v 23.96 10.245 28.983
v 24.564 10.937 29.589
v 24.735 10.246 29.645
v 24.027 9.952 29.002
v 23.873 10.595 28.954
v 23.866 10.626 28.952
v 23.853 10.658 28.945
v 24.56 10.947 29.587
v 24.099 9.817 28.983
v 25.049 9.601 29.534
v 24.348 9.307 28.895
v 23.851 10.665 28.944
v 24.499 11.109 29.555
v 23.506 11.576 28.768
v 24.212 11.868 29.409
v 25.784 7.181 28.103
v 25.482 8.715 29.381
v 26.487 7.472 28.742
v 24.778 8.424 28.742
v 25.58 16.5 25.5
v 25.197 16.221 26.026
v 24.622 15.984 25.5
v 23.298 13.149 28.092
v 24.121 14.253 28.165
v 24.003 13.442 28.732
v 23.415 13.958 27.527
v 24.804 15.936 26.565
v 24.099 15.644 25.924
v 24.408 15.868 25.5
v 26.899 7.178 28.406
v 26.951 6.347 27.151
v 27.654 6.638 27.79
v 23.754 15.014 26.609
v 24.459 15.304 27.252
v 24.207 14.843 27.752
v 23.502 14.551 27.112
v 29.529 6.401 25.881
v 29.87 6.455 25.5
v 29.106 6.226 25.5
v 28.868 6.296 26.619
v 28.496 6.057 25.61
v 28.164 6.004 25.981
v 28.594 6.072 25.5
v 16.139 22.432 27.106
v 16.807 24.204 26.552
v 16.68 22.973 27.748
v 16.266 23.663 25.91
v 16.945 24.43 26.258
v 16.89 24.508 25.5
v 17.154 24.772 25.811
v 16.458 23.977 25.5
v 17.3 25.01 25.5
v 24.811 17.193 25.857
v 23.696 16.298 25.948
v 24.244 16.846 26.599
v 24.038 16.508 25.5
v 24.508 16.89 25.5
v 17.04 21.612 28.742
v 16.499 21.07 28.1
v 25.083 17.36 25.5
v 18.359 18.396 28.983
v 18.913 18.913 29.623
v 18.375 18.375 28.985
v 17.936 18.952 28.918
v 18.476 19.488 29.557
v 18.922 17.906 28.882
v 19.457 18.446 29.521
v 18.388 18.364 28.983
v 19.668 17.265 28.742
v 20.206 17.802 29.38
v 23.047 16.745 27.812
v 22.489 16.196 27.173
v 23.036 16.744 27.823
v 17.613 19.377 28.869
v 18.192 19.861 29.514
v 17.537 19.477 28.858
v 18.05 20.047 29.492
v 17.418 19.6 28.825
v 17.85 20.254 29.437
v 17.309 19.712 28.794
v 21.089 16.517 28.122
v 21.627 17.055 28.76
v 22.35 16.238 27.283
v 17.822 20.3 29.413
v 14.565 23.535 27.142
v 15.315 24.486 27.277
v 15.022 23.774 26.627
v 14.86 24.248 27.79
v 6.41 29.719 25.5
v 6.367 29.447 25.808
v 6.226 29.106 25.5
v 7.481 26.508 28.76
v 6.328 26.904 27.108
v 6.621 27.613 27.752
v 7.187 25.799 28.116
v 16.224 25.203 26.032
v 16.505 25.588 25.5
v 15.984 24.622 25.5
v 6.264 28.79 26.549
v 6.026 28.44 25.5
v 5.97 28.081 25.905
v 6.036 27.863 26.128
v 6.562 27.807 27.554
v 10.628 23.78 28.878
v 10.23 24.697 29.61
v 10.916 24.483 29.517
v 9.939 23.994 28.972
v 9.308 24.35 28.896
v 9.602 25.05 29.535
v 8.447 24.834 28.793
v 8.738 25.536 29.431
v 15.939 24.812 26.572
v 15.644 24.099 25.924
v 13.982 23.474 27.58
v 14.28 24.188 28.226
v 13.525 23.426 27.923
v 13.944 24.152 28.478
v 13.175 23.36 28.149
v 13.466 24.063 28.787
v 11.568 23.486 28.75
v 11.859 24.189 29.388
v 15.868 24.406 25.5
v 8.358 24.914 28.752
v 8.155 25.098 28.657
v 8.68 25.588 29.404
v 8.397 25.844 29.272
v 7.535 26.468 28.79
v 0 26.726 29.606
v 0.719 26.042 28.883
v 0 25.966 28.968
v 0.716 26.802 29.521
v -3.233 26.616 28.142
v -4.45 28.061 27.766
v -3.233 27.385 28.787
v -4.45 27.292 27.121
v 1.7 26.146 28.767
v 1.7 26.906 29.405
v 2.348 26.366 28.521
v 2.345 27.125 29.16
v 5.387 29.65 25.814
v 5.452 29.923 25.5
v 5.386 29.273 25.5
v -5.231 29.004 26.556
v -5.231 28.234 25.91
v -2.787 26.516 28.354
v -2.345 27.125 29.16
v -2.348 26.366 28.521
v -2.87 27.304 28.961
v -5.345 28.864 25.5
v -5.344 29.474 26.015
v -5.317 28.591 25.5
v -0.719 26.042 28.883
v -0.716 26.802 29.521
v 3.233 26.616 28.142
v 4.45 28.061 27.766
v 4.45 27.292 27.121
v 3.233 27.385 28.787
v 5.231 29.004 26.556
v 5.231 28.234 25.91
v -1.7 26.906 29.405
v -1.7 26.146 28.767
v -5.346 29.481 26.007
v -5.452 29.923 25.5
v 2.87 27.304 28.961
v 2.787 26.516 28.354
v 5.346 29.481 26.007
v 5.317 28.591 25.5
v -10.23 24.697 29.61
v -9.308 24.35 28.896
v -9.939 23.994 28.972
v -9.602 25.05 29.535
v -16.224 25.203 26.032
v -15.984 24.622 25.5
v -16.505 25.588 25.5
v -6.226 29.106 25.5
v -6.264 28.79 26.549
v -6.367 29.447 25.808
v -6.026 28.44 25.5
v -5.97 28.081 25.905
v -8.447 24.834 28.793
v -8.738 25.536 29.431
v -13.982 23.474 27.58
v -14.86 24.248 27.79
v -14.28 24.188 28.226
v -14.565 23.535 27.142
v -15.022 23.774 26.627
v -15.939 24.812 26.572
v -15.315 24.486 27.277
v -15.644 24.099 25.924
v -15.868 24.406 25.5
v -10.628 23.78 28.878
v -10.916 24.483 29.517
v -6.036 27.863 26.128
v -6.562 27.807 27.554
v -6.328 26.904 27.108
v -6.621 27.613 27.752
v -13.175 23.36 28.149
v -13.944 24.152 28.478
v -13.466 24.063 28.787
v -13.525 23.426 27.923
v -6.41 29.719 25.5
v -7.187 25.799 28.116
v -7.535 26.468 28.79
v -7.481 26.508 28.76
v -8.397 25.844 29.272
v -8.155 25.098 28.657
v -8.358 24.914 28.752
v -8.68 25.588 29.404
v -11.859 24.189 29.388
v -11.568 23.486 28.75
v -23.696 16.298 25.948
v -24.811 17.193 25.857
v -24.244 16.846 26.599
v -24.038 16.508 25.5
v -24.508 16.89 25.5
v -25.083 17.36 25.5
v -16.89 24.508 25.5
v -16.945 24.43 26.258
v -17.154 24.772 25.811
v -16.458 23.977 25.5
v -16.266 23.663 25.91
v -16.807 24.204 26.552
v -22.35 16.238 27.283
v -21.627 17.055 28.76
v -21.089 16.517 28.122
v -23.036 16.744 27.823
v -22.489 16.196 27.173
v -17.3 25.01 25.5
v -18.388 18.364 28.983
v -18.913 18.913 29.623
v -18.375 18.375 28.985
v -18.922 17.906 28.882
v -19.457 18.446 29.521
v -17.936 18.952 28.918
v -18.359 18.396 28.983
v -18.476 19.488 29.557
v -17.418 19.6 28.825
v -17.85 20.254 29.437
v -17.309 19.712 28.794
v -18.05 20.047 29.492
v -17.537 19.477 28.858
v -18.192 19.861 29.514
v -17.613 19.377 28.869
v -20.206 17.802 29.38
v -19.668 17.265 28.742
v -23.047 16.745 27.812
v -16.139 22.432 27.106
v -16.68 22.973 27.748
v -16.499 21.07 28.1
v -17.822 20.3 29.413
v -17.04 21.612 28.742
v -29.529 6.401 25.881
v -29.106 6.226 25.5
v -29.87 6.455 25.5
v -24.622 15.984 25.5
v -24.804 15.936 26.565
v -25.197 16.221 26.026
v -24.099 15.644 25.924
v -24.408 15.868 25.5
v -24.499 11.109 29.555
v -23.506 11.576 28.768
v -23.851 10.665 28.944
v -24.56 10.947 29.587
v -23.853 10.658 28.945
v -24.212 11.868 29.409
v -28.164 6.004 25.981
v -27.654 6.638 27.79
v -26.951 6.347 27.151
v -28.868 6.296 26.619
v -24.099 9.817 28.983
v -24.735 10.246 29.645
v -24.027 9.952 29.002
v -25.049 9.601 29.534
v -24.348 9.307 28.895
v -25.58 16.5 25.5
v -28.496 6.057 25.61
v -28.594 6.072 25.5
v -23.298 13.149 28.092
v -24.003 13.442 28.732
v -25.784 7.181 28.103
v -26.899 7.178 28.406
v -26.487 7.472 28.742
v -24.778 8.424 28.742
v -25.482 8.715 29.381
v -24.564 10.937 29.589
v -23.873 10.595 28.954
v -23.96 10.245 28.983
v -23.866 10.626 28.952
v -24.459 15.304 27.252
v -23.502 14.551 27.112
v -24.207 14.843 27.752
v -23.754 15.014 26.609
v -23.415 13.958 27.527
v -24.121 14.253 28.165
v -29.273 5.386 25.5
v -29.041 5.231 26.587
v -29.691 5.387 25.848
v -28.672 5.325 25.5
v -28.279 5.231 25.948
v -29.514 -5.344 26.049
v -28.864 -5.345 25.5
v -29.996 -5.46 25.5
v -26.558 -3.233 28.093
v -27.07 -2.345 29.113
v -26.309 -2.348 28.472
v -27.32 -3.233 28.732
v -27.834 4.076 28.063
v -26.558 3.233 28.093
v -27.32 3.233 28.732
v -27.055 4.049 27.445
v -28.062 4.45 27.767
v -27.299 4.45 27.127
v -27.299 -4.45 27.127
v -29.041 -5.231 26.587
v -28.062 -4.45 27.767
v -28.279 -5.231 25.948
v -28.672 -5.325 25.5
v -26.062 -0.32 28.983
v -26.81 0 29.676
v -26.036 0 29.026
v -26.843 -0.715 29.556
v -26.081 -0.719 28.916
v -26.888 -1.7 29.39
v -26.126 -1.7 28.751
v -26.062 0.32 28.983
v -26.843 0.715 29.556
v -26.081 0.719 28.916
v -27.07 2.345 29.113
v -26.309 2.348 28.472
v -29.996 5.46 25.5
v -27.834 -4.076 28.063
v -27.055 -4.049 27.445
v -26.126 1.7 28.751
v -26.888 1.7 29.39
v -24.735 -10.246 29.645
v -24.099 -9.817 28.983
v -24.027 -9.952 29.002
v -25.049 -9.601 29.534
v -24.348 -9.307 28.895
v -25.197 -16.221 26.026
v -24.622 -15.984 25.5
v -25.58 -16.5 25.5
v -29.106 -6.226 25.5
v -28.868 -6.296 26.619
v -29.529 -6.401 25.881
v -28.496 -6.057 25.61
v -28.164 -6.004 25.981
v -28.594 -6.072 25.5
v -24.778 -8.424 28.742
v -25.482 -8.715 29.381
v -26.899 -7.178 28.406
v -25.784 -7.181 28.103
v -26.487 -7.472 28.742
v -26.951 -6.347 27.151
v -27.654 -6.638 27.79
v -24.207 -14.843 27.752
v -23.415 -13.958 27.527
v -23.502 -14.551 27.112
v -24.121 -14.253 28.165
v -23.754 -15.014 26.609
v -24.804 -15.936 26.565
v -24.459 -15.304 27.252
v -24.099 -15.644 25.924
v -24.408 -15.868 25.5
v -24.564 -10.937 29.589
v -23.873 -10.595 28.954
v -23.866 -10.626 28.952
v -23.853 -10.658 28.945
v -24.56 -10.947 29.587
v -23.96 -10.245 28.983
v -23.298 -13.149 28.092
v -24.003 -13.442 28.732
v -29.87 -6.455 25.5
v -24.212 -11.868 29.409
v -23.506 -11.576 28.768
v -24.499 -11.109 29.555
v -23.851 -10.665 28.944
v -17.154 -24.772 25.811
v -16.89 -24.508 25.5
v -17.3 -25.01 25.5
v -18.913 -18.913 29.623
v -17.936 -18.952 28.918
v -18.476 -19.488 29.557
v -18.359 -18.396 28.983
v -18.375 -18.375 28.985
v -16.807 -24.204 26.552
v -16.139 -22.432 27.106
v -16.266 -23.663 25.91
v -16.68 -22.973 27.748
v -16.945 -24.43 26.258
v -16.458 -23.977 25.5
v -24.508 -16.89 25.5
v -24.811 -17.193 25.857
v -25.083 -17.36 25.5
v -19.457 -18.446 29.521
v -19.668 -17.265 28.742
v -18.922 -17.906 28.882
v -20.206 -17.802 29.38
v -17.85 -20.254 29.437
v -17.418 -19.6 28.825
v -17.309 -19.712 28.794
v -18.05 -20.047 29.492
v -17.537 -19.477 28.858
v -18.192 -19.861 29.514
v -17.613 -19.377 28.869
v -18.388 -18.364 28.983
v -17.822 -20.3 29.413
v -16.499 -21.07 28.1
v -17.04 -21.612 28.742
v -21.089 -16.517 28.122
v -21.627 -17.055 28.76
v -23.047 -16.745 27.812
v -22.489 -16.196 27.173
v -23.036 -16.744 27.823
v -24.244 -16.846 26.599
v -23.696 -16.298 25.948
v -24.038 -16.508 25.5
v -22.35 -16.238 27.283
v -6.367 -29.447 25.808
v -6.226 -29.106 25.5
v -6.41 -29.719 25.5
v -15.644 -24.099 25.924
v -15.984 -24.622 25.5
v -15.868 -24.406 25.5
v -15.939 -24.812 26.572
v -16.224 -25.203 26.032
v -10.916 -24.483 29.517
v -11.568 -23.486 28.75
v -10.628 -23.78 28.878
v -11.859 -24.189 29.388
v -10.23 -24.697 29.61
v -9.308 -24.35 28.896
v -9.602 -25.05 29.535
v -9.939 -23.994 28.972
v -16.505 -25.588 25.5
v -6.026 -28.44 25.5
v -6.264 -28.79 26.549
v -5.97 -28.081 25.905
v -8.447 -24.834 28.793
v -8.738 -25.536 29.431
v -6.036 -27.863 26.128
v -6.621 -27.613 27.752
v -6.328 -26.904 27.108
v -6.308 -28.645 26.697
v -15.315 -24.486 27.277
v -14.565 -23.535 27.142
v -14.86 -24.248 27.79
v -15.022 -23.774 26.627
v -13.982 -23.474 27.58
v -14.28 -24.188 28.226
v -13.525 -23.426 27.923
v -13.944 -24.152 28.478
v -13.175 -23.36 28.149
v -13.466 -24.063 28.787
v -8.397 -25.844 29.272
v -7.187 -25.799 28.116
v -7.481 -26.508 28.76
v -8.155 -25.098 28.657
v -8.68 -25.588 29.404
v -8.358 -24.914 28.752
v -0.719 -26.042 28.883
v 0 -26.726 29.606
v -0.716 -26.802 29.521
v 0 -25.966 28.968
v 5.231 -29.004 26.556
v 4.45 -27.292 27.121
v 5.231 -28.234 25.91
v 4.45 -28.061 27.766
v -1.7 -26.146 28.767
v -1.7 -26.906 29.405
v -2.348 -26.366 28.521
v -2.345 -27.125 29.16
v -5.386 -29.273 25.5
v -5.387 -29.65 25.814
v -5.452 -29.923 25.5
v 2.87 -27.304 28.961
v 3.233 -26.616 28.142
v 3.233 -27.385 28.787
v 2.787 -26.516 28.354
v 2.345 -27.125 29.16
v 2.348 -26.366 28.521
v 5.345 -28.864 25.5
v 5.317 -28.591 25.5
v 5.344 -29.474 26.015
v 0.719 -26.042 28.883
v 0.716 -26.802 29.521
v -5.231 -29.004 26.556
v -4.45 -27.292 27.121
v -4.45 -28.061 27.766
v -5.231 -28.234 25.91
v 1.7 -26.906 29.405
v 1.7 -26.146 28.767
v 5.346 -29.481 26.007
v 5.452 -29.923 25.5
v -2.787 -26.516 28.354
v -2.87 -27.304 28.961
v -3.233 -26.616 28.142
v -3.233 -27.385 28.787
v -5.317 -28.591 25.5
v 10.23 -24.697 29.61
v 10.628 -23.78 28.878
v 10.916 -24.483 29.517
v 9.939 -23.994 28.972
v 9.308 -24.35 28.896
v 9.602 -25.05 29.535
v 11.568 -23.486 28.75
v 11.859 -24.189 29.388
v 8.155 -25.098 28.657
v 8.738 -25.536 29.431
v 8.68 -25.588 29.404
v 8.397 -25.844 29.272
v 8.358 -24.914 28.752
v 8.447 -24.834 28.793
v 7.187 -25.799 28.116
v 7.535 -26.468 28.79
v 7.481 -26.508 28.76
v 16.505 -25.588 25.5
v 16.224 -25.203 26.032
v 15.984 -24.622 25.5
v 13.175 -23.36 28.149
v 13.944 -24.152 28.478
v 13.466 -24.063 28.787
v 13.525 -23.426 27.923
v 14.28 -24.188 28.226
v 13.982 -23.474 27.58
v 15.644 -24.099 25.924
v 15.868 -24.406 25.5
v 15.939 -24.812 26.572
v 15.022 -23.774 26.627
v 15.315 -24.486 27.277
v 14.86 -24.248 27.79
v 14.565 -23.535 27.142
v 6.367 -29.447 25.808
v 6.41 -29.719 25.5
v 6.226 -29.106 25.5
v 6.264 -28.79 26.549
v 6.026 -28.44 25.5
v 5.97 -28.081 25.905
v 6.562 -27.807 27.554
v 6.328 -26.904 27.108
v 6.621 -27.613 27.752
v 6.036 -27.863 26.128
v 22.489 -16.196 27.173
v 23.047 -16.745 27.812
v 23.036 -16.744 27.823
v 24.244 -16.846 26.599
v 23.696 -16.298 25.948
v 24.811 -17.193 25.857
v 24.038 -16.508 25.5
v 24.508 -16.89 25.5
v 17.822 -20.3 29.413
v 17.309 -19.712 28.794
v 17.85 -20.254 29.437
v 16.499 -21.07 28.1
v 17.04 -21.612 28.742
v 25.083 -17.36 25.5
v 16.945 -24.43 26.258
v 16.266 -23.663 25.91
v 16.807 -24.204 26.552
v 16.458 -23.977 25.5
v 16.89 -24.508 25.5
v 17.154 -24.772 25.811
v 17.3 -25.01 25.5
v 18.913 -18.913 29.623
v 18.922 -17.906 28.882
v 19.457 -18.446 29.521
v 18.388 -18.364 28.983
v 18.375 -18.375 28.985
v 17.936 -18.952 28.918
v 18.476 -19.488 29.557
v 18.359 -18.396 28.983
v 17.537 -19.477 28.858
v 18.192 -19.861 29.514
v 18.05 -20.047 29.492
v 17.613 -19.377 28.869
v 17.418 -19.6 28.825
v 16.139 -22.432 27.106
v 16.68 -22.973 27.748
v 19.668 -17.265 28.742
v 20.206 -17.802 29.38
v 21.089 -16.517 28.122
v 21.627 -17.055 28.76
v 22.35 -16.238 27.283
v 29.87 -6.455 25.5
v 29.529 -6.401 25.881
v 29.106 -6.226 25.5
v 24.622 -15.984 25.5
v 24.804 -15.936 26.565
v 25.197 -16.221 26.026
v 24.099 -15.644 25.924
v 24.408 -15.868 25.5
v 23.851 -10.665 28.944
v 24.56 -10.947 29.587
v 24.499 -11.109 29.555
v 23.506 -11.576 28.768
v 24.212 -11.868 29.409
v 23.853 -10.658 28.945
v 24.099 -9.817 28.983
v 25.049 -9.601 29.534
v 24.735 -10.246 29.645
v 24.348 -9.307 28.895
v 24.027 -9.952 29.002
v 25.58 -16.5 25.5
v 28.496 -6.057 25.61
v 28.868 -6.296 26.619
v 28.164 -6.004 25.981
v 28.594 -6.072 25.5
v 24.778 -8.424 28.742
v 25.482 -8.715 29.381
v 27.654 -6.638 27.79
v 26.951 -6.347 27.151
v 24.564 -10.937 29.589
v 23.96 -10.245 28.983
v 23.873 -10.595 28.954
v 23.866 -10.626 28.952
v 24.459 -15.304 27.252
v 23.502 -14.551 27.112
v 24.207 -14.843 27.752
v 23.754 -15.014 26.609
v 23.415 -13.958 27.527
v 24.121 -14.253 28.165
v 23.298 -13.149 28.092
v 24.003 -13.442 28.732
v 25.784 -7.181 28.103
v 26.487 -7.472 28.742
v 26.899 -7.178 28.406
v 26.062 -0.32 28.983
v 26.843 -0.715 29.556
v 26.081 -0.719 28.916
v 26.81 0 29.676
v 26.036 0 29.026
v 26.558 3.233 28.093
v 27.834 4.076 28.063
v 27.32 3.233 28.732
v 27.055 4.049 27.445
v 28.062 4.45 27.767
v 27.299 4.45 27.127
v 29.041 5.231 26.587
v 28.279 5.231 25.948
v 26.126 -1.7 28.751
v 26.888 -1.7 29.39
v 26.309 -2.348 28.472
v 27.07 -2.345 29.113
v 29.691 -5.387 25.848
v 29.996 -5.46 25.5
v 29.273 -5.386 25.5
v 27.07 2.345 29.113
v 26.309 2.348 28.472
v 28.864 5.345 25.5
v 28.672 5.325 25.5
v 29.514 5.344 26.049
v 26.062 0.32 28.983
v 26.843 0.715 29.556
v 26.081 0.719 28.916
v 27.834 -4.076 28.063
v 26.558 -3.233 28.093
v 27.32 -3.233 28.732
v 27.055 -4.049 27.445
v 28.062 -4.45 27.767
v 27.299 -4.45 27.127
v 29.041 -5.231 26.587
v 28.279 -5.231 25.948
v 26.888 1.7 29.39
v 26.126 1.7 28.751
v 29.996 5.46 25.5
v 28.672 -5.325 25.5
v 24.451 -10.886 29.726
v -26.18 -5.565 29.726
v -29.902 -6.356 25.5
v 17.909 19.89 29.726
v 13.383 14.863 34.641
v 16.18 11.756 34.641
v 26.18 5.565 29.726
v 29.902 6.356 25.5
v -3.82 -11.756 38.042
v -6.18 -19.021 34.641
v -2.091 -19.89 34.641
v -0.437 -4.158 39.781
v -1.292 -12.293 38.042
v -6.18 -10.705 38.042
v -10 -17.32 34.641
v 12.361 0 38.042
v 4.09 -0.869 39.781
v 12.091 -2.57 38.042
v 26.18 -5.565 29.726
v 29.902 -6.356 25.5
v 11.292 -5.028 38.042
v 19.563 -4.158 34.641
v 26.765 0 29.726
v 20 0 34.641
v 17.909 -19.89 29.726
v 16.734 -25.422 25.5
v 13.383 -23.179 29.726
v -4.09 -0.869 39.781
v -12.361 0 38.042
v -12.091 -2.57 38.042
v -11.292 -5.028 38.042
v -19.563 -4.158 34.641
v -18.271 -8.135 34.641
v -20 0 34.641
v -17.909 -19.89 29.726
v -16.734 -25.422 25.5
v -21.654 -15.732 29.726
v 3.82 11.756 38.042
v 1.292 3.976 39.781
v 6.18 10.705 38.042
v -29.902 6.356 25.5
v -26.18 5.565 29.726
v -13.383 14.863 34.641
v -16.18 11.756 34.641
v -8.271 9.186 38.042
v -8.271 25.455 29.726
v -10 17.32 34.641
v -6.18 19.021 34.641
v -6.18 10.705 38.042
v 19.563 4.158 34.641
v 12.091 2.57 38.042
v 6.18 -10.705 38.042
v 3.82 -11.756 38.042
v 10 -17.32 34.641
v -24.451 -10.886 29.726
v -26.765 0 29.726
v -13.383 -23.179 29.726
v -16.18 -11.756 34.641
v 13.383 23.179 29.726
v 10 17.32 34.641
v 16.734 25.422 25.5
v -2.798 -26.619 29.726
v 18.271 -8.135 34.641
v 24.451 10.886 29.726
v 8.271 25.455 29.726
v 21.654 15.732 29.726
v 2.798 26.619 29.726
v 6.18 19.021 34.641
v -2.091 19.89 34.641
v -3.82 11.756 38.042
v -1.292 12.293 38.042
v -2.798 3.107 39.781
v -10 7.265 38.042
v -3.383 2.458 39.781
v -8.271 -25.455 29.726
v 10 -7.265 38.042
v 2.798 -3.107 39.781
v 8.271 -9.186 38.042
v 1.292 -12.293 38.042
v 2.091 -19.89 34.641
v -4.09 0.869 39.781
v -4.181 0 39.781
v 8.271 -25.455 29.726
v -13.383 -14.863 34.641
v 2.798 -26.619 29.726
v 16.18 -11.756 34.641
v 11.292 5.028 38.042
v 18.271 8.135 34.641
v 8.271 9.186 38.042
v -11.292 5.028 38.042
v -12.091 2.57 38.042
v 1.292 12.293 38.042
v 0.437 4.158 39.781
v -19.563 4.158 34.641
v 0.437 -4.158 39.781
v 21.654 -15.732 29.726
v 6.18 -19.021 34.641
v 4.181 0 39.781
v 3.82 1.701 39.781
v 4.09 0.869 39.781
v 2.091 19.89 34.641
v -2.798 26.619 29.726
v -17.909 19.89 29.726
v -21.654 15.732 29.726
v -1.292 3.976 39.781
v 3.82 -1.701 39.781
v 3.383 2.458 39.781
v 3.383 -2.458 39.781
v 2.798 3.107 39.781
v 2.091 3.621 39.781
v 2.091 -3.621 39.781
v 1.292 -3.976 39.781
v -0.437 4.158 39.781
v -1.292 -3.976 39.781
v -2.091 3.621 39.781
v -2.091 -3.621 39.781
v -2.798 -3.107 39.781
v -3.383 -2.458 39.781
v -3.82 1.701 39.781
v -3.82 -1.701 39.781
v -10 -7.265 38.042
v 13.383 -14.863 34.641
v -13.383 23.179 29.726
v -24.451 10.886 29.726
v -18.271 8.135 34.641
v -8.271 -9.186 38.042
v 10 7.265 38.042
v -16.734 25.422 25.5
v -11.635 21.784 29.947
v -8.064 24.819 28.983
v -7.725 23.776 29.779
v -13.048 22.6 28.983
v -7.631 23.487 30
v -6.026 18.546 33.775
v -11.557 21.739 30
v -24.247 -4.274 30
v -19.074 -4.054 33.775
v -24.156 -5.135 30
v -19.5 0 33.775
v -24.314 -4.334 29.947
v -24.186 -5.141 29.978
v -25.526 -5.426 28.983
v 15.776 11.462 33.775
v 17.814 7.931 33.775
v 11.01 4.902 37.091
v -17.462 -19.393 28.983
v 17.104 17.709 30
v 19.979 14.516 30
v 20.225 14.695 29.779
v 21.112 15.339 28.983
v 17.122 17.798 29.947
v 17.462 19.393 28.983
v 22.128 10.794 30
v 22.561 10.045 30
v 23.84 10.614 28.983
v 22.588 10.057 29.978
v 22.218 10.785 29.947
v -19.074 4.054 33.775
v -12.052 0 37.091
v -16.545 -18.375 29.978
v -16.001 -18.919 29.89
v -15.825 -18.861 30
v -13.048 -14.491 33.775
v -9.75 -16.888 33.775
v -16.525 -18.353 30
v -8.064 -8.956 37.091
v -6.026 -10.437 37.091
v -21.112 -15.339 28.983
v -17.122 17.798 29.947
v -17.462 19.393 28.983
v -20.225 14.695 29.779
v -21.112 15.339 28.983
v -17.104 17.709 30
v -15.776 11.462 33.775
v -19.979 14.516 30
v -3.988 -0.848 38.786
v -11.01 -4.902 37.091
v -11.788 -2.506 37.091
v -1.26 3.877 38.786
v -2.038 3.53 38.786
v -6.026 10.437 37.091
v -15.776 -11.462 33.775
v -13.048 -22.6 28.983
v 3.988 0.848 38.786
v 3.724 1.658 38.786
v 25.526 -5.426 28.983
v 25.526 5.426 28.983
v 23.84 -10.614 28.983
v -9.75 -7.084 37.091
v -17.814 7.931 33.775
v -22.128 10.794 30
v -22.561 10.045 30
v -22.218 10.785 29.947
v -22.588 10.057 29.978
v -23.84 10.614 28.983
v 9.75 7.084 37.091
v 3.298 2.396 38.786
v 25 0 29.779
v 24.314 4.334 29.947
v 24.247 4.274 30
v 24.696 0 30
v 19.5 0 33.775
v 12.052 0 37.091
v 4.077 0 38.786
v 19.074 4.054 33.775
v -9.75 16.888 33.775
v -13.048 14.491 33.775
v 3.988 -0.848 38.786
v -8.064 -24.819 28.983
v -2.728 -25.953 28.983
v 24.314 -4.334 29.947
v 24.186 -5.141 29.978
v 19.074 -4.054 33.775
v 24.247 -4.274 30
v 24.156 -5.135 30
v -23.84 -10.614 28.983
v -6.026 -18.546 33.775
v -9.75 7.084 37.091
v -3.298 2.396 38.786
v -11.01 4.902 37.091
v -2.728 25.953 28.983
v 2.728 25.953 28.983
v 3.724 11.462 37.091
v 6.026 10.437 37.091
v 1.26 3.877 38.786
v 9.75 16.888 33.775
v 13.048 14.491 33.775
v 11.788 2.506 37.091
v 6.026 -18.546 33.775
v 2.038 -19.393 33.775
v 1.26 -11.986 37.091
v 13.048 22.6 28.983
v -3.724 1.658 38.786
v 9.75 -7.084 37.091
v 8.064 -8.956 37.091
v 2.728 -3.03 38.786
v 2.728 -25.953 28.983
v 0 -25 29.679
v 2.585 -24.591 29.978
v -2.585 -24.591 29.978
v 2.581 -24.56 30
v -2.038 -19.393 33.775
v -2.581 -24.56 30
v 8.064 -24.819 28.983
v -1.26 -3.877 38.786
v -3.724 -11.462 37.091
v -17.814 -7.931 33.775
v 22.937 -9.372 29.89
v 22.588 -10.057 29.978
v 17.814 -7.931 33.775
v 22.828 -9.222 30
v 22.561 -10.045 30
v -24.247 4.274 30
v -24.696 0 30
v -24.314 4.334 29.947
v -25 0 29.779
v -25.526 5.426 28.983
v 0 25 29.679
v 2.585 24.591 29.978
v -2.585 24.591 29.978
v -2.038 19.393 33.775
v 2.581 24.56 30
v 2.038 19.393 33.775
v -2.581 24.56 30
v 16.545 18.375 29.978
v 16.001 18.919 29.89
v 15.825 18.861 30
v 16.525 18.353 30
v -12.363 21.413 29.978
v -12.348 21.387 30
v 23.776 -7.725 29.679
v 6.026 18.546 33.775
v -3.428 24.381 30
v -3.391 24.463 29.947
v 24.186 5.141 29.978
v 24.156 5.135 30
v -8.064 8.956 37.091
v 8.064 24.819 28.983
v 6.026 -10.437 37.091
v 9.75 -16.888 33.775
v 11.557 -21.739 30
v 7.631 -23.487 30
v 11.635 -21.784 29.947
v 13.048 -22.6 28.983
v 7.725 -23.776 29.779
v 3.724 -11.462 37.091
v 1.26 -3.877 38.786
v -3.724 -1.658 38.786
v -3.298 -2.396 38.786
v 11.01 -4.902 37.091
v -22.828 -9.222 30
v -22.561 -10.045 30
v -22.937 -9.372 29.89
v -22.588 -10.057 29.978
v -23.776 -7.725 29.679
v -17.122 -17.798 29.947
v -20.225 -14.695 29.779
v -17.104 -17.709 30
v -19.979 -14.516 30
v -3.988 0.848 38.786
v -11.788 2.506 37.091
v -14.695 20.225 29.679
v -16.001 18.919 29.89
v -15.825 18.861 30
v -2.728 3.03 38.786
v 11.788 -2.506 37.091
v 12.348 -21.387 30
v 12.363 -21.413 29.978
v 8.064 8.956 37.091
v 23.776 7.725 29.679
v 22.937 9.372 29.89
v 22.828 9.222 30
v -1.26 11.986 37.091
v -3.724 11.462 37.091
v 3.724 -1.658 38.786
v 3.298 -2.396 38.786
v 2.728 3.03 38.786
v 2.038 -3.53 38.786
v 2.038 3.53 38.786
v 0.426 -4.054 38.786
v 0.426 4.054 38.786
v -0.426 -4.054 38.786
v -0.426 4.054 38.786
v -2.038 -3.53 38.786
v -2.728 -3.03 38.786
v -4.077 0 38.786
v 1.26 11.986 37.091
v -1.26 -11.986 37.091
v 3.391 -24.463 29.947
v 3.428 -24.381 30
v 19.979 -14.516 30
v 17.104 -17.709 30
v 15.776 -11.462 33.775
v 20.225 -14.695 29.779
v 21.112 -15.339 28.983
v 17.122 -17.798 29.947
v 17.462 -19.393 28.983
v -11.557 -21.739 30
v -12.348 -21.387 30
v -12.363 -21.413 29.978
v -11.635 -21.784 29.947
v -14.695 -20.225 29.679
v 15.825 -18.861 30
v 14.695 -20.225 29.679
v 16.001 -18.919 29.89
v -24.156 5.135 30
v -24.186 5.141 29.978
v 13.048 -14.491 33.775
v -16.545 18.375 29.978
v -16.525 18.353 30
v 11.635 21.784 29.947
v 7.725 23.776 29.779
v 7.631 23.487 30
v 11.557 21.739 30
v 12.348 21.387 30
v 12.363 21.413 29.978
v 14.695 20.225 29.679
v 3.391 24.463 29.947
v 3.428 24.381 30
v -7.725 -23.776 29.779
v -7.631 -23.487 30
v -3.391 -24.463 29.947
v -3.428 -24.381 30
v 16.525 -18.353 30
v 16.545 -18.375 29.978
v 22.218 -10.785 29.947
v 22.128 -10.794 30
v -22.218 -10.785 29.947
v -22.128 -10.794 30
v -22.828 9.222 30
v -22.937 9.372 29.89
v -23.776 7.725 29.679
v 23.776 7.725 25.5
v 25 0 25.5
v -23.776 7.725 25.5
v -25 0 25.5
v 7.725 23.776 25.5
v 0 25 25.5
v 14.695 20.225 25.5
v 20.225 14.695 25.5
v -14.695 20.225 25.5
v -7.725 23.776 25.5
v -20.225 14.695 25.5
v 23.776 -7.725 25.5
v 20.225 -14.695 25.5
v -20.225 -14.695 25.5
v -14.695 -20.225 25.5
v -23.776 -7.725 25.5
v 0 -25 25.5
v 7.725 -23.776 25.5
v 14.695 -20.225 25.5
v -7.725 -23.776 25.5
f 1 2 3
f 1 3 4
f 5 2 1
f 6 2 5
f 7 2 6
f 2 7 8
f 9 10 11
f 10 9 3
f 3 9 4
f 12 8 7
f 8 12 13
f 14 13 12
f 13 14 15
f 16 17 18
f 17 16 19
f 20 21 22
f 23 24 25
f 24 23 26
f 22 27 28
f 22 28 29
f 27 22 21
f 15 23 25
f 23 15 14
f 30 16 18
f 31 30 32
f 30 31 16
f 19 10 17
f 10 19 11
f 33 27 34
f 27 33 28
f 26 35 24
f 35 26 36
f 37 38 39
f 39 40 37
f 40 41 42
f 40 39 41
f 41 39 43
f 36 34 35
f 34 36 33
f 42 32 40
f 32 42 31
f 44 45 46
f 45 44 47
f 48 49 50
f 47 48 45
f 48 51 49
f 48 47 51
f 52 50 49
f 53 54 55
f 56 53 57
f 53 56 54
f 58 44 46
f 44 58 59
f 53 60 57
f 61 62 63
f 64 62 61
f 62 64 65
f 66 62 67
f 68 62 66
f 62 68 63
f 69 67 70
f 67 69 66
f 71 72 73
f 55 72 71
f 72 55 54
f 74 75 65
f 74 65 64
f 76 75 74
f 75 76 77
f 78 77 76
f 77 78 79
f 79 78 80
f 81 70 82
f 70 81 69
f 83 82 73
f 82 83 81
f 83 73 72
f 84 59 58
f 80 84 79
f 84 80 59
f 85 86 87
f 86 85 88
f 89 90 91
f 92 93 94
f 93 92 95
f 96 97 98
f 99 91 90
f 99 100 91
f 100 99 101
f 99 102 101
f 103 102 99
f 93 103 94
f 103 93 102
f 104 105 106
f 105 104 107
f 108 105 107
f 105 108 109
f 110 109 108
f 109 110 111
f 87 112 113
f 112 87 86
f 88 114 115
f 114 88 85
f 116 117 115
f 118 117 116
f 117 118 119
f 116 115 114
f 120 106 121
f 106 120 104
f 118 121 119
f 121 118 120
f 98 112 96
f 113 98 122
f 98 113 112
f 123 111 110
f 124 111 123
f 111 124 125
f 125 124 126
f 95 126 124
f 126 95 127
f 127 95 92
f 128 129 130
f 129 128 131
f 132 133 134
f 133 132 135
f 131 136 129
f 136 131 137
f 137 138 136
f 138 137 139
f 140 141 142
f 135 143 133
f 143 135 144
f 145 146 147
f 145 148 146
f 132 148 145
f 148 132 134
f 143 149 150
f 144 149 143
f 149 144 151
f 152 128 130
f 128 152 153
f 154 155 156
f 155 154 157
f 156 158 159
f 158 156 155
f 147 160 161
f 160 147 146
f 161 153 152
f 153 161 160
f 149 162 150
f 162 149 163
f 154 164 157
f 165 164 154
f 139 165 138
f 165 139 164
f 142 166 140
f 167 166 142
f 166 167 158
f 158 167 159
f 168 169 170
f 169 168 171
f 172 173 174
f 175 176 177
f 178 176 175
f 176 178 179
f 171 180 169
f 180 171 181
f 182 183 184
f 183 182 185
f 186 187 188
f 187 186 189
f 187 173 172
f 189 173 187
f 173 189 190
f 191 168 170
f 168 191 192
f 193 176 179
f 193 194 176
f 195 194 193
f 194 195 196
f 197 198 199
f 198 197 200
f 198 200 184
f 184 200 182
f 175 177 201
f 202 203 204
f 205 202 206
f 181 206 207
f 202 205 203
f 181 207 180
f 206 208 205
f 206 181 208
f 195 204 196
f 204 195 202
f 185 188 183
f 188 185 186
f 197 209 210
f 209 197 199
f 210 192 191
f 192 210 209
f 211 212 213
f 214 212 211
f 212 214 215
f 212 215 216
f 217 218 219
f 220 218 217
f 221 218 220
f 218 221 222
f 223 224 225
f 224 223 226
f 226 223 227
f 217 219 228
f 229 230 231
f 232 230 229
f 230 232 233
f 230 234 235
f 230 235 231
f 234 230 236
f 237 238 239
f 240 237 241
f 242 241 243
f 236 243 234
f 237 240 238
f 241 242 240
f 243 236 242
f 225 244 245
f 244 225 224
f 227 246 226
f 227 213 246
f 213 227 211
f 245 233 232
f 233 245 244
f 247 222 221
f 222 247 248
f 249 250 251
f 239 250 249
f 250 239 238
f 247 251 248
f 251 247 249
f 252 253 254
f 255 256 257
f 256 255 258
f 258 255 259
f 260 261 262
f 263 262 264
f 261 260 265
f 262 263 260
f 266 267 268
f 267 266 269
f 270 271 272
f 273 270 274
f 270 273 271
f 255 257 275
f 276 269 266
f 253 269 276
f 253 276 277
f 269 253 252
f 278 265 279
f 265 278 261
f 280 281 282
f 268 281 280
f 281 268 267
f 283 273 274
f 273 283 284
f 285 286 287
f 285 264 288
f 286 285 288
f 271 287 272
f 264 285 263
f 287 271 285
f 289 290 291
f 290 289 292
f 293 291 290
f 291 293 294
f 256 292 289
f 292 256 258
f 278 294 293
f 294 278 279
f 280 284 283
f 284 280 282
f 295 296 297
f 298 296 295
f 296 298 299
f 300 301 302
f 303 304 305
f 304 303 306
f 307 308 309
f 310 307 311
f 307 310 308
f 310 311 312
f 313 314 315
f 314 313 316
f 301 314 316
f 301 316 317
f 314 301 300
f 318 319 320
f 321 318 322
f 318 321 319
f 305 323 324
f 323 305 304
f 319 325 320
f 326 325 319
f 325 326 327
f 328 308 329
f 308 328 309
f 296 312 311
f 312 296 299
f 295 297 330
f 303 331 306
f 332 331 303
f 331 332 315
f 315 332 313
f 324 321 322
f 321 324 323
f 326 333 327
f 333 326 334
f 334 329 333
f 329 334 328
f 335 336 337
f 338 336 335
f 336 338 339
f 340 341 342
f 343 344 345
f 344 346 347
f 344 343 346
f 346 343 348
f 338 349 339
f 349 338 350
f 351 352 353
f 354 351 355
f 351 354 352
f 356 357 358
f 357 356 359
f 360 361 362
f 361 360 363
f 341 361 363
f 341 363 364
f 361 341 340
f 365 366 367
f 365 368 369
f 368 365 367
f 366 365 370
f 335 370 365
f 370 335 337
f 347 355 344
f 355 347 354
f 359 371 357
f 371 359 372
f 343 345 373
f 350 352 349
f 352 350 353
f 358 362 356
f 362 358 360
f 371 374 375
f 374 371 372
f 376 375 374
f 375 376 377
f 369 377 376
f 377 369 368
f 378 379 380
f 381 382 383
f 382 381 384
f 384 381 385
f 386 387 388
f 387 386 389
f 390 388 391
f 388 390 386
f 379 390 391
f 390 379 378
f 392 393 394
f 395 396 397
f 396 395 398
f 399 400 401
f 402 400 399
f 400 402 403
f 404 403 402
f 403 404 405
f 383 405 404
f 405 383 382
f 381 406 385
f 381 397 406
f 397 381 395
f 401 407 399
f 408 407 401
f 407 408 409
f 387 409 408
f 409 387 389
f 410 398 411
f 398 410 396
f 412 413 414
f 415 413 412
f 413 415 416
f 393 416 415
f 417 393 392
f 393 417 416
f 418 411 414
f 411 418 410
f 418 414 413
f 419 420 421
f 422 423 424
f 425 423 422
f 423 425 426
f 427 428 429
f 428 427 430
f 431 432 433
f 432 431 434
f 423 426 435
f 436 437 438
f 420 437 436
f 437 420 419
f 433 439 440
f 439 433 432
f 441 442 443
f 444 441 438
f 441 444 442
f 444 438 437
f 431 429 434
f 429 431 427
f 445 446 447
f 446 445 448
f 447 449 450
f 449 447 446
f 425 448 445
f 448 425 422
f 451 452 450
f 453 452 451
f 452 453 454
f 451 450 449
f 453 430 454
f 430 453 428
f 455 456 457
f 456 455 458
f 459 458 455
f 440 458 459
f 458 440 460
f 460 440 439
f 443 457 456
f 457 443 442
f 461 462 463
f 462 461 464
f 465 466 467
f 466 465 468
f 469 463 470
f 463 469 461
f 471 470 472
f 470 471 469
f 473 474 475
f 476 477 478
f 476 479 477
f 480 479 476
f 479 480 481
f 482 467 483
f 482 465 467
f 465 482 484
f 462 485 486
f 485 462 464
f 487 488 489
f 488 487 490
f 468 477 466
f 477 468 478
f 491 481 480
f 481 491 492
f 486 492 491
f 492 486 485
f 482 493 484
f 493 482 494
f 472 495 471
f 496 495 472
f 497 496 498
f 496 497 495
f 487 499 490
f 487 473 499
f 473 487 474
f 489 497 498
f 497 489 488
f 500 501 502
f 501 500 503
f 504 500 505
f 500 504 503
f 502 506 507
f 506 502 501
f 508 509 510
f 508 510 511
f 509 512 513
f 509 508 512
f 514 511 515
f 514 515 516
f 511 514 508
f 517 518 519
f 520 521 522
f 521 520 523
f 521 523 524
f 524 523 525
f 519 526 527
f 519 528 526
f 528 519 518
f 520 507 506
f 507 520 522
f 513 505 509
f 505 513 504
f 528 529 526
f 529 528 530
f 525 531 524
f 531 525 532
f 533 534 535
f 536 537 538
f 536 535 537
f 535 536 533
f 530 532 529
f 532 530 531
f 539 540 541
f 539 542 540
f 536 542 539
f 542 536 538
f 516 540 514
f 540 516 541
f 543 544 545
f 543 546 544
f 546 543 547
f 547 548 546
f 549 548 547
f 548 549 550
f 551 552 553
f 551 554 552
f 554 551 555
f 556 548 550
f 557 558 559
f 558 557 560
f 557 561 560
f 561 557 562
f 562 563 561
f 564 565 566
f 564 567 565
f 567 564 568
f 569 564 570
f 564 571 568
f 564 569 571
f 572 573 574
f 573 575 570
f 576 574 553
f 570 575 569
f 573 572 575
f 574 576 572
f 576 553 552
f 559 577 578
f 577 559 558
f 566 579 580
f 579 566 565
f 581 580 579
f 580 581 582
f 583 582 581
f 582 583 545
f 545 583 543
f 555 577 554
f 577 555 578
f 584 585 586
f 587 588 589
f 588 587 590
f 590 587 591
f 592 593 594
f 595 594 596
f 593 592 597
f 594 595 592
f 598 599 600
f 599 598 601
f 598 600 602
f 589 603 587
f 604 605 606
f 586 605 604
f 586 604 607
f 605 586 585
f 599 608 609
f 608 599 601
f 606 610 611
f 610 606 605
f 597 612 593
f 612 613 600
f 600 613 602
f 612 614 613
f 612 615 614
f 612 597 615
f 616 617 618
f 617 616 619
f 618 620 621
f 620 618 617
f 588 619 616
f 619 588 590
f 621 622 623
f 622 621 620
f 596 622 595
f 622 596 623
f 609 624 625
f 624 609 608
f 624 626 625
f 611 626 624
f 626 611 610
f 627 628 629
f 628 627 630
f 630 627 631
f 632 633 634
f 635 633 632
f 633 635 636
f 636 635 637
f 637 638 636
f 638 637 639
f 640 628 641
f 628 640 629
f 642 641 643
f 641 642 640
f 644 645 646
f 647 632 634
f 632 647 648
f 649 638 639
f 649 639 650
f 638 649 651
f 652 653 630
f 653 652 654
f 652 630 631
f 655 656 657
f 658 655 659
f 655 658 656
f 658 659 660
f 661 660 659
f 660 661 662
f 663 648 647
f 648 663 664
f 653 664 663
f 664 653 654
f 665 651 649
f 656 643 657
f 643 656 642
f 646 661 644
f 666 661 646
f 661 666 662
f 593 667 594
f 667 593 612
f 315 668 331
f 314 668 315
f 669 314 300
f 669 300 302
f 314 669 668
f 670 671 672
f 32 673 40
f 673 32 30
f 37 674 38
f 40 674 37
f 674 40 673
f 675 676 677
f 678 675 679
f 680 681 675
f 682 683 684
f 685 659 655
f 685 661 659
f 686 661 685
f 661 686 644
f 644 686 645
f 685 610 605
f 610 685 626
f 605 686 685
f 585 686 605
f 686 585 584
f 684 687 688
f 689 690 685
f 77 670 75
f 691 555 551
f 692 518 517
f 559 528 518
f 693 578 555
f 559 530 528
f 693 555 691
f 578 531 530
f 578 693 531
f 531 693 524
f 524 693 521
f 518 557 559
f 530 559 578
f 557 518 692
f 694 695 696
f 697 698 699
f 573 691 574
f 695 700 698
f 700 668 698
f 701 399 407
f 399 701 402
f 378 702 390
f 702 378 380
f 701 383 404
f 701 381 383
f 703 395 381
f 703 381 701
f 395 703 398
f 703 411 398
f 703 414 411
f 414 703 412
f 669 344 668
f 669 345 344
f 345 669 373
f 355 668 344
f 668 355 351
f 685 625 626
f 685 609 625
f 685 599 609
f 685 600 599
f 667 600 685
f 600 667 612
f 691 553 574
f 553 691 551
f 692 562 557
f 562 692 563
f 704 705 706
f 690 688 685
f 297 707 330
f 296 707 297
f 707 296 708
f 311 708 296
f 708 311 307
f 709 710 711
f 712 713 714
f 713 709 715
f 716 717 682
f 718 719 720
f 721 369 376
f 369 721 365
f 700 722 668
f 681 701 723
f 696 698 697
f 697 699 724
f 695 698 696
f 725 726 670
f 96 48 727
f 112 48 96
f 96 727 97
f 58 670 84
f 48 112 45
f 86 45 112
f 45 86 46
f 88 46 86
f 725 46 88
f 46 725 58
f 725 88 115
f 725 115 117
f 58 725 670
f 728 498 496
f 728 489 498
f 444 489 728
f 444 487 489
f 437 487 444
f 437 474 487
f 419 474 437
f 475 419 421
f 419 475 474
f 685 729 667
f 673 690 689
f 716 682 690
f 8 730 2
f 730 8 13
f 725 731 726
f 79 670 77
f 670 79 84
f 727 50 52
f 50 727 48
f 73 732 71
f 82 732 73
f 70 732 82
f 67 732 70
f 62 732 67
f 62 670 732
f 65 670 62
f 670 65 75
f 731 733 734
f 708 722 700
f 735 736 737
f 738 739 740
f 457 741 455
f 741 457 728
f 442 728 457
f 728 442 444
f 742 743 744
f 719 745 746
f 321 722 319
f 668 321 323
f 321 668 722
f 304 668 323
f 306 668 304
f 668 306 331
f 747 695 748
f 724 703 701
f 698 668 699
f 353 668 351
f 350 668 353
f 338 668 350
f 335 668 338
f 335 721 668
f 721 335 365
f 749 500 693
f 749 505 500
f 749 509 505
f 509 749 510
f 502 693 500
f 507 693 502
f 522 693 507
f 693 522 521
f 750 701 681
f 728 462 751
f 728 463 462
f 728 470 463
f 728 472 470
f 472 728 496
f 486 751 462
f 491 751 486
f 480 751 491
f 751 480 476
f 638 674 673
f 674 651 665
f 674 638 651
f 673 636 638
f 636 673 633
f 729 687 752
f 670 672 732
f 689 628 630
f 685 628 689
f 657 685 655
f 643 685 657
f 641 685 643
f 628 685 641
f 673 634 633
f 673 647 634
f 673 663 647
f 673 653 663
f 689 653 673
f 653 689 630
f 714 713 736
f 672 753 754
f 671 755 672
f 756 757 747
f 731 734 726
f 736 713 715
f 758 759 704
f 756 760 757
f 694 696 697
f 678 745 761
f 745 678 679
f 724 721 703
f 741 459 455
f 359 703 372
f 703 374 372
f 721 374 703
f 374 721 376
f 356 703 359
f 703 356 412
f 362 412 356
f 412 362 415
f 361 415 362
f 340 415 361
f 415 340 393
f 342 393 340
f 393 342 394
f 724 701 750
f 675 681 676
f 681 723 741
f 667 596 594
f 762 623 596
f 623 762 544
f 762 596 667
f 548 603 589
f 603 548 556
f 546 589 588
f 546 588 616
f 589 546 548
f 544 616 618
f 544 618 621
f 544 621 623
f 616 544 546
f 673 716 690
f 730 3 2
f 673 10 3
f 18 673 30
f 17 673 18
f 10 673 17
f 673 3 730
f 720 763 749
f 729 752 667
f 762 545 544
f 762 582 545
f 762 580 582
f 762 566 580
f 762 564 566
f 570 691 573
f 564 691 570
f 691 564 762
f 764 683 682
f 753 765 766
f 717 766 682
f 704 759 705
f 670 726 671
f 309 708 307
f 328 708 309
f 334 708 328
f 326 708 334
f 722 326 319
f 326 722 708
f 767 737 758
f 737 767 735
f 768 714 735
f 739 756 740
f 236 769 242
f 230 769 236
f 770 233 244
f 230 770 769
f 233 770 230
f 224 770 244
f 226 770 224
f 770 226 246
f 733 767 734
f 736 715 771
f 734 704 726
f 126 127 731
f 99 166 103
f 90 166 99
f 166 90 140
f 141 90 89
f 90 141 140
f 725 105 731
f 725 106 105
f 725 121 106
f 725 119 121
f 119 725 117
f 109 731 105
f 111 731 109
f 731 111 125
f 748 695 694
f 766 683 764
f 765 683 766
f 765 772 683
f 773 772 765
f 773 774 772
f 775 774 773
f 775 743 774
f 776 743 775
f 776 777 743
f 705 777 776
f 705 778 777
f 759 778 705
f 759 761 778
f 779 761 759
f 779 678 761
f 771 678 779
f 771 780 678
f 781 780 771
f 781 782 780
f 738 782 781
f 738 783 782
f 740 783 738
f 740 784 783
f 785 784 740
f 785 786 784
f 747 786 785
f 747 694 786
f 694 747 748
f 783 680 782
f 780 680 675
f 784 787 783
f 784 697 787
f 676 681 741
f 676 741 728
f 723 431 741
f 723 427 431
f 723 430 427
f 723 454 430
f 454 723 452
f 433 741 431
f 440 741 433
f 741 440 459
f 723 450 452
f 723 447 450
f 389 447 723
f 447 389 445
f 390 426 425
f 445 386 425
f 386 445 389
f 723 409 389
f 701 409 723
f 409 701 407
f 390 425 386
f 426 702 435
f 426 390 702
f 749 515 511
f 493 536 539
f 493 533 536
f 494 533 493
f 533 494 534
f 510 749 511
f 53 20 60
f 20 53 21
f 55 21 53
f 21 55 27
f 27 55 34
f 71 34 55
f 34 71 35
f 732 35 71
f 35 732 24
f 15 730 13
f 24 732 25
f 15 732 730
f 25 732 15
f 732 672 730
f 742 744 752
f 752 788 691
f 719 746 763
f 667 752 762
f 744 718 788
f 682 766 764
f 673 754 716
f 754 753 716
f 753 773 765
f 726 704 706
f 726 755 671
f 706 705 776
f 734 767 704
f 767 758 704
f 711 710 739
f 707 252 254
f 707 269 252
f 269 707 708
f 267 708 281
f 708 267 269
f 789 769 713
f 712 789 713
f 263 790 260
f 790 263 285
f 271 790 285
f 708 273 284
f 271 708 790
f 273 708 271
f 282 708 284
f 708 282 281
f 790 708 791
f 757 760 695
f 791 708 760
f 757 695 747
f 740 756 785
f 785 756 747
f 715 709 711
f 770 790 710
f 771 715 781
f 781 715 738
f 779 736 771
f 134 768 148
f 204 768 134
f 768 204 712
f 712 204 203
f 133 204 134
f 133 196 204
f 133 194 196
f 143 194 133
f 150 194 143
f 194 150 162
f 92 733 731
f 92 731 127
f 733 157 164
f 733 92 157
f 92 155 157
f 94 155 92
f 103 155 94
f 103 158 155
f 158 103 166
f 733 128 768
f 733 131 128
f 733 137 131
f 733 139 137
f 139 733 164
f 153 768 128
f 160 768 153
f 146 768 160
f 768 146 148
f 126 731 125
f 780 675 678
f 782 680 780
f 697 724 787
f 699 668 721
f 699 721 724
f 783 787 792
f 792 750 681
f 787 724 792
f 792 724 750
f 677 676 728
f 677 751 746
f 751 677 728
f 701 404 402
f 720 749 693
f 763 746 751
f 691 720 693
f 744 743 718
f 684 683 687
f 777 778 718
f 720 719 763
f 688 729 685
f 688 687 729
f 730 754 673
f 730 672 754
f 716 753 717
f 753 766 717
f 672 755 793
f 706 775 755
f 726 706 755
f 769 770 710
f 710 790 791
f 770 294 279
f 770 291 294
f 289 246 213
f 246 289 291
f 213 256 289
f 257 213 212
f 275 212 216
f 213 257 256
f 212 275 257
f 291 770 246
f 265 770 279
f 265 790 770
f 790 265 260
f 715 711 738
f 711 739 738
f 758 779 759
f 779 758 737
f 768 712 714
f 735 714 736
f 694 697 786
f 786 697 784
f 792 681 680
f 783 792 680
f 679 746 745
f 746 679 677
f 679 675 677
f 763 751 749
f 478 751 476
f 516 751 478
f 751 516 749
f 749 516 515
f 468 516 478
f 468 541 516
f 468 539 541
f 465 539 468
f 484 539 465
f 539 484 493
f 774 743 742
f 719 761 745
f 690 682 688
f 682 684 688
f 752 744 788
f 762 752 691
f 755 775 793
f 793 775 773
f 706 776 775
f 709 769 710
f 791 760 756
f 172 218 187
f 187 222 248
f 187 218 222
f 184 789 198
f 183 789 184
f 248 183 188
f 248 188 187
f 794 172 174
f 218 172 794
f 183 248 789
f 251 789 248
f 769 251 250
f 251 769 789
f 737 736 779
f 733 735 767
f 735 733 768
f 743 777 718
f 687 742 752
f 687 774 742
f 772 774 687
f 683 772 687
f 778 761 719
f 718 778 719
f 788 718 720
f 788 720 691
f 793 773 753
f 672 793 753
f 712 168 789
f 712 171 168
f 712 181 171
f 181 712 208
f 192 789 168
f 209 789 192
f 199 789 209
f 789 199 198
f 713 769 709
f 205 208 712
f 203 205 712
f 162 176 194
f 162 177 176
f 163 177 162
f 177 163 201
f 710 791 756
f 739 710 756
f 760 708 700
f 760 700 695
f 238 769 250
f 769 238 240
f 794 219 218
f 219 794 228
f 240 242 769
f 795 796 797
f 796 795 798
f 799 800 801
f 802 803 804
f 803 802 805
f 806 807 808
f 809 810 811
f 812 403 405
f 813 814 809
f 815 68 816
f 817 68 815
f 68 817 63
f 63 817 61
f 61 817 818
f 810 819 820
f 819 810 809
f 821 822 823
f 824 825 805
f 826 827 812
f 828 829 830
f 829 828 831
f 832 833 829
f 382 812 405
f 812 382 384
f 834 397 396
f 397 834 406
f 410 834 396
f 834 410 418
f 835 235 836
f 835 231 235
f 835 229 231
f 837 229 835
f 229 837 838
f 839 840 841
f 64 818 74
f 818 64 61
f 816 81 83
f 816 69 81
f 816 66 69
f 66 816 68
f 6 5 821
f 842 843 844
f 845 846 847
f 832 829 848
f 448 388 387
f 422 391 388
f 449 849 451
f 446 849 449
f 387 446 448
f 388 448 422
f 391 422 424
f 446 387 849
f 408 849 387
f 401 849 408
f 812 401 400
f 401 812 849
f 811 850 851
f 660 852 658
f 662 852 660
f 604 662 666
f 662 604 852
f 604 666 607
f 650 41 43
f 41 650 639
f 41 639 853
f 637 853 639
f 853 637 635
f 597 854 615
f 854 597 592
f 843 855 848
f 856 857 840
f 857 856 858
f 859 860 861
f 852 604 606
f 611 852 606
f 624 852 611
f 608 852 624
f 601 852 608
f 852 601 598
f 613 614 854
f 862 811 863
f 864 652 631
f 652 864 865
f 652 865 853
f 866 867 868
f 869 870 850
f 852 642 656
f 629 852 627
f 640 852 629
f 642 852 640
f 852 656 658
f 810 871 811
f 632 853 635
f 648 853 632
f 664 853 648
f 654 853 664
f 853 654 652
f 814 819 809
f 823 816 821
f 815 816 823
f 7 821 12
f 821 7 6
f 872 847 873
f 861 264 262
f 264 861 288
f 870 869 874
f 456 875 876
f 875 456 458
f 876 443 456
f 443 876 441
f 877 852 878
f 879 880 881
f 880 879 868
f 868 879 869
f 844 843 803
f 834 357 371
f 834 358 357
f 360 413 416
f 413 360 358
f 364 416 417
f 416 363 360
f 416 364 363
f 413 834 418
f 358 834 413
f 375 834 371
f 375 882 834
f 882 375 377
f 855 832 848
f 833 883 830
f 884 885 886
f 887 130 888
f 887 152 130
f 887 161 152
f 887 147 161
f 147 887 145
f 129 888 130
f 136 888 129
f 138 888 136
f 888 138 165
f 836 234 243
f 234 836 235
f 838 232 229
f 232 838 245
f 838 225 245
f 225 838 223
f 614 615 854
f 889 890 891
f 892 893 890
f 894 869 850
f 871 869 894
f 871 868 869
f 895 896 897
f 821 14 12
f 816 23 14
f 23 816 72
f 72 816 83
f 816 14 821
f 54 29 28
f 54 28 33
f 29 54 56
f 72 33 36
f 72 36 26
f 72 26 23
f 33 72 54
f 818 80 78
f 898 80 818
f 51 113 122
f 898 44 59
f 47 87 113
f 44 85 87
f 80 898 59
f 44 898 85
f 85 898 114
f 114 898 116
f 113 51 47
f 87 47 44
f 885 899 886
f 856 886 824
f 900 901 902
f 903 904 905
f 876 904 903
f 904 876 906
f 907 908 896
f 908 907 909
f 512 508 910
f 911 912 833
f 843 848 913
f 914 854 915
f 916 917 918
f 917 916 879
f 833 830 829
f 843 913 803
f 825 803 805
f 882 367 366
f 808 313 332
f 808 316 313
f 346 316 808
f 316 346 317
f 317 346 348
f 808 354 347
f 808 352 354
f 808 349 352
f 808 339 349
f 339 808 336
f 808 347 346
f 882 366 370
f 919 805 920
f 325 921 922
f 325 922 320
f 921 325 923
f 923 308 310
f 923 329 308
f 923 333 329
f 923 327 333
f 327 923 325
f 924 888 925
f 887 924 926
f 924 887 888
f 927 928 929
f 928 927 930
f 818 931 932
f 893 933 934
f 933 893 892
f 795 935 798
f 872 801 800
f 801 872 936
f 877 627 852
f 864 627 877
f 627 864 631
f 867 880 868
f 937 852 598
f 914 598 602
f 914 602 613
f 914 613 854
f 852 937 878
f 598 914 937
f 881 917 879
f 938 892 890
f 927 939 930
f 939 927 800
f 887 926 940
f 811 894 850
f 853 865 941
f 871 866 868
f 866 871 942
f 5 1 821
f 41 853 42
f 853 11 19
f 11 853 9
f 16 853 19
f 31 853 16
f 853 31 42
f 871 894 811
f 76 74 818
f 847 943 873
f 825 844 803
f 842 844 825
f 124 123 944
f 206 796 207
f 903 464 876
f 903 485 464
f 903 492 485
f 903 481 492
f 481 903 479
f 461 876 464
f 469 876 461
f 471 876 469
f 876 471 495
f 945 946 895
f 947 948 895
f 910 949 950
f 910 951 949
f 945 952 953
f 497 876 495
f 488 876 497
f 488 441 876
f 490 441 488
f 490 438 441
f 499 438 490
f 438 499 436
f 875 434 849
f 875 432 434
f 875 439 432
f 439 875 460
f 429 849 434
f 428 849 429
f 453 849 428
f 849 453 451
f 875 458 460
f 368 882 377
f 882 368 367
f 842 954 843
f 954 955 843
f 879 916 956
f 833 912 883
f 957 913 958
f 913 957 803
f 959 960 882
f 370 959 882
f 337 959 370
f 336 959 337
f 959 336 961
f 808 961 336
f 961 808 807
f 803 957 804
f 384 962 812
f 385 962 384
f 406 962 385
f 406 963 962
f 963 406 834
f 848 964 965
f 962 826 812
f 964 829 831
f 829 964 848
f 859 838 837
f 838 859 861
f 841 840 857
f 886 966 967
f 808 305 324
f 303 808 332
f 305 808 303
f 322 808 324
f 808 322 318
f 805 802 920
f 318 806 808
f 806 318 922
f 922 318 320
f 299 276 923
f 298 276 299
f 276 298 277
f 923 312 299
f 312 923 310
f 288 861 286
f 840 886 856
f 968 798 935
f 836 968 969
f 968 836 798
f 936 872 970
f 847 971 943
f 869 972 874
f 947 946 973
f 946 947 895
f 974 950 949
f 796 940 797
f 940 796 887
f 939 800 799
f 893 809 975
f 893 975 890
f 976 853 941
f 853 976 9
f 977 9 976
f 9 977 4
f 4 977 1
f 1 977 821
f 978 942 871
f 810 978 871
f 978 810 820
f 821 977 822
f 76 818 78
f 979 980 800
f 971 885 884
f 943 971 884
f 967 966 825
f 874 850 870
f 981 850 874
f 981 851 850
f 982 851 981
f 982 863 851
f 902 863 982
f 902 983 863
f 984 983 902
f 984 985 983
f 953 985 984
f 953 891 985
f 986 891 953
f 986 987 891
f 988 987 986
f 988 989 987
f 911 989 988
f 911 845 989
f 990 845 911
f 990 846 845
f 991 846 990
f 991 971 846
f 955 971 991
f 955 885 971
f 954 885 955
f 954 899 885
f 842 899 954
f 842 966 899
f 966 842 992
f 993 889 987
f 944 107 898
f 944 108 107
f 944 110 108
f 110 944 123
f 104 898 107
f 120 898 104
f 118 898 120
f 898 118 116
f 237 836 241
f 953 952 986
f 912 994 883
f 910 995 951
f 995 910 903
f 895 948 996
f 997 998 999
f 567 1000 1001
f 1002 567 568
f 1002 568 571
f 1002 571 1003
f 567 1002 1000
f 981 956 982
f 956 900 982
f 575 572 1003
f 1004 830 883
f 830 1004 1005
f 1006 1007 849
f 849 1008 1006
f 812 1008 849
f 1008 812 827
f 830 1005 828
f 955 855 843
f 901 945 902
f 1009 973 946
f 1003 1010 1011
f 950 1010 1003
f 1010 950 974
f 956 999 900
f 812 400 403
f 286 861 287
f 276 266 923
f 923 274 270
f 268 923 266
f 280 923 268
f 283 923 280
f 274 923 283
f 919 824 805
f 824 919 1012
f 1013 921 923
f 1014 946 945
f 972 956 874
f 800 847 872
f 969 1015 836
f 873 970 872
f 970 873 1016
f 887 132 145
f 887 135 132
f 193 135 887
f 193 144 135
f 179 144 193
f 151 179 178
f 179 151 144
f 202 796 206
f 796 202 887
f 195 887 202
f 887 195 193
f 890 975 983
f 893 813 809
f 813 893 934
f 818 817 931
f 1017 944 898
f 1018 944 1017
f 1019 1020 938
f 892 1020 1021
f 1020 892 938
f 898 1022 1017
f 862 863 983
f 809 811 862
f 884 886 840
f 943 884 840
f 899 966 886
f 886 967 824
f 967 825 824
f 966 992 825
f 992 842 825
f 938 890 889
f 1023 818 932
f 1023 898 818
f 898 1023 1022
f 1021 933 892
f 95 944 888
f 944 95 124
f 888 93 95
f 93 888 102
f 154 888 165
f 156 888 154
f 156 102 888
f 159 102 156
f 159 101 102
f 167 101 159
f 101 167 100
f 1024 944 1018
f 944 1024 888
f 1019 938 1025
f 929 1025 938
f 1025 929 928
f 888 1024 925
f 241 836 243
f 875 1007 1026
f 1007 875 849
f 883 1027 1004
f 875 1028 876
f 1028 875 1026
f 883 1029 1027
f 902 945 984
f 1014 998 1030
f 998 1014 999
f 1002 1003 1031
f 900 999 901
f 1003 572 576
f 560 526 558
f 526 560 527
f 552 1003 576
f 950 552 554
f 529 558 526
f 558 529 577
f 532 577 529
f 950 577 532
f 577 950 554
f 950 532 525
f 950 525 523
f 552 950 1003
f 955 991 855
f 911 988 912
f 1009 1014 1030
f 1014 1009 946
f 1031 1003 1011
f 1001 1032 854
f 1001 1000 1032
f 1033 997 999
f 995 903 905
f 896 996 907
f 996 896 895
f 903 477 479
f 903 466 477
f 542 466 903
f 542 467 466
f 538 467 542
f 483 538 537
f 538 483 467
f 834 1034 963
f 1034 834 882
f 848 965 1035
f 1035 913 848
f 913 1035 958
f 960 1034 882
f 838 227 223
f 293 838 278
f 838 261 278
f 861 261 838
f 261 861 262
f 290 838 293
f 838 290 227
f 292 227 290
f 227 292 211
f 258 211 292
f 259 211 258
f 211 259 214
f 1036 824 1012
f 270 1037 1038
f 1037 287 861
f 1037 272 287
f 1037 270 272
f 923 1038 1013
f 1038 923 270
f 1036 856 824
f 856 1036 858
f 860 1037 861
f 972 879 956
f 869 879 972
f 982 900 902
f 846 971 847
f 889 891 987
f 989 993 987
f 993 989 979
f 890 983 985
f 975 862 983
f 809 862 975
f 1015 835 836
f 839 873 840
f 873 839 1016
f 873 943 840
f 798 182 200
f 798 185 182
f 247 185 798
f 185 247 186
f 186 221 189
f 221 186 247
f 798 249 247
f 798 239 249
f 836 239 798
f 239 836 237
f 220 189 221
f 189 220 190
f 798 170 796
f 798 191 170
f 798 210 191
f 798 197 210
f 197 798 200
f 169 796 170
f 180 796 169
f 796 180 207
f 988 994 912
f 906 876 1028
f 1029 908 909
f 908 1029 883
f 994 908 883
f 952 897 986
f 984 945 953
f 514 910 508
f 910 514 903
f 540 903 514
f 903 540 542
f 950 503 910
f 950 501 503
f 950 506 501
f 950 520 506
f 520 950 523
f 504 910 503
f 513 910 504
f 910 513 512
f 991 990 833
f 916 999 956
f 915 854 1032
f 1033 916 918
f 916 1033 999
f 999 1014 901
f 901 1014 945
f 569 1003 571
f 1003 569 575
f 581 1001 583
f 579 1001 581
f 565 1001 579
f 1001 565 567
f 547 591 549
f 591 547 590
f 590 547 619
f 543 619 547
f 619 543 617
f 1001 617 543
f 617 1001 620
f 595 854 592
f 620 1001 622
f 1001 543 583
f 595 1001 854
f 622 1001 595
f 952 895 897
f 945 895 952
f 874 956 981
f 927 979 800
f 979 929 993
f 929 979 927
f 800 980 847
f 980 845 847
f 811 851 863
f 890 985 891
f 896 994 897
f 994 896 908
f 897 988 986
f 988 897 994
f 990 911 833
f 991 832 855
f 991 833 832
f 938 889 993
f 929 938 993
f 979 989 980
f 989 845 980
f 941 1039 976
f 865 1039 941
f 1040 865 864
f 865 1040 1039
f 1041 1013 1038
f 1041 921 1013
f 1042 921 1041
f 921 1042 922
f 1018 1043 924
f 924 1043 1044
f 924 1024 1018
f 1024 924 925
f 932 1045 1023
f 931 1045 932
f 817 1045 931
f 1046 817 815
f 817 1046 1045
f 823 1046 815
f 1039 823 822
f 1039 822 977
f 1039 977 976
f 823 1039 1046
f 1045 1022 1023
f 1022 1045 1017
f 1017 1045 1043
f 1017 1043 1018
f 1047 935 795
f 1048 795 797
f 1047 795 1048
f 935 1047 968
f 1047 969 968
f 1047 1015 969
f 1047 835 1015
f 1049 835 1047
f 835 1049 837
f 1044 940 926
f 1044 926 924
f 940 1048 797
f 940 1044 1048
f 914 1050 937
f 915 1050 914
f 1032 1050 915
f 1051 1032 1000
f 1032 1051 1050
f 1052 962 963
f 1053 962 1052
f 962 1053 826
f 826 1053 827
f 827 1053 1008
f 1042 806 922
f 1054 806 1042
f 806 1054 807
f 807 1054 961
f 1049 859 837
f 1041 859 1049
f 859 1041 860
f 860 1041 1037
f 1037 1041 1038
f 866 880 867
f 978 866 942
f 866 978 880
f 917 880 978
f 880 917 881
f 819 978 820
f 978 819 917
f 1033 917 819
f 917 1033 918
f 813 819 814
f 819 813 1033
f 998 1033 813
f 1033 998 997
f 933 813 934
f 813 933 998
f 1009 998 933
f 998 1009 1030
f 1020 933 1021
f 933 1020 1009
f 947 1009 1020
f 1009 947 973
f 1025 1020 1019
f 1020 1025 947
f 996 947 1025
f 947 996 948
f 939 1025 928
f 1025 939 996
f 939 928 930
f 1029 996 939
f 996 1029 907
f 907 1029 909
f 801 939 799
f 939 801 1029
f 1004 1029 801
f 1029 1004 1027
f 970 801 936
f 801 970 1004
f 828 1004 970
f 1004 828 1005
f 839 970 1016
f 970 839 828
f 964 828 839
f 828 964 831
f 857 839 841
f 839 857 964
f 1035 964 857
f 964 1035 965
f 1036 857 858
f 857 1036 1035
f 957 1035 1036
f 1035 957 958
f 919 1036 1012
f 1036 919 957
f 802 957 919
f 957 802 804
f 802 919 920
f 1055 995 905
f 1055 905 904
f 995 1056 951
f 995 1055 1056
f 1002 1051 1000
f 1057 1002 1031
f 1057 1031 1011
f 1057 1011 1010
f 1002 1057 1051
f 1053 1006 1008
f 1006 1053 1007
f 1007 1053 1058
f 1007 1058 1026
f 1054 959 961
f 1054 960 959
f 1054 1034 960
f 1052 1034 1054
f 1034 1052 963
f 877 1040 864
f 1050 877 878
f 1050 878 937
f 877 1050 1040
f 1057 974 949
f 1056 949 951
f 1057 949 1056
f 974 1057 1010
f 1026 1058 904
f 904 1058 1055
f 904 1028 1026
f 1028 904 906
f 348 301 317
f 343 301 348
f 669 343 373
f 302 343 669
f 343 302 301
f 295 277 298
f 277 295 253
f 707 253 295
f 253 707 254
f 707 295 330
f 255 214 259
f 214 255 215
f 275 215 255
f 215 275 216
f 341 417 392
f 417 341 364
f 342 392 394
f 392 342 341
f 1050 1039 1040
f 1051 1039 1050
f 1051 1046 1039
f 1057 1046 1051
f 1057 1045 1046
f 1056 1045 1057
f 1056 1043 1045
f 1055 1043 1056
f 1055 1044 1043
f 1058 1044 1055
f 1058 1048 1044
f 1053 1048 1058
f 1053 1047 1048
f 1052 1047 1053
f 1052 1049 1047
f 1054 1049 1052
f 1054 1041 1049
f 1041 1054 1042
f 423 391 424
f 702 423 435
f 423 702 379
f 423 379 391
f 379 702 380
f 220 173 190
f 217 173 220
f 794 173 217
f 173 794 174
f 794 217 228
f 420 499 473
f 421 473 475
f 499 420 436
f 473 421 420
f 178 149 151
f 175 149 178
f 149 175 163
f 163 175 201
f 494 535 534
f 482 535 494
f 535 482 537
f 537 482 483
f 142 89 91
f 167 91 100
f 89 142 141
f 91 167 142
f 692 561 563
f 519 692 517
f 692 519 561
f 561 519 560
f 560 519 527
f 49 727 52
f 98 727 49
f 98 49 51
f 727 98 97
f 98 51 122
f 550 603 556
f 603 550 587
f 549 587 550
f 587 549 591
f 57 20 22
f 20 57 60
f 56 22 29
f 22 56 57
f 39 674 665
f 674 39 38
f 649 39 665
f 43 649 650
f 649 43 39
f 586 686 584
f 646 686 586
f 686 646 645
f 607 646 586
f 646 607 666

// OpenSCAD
// Shine Dome ANU
// 08/02/17
// by Ming-Dao Chia
    
    
circle_resolution = 20;
module cylinders_empty(num, size){
    function angle(i,num)=i*(360/num);
    for(i=[1:num]){
        rotate([0,50,angle(i,num)])
        cylinder(h=500, r=size, center=true, $fn=circle_resolution);
    }
}

module shell(){
    difference(){
        sphere(40,center=true);
        cylinders_empty(16,5.5);
        sphere(39,center=true);
    }
}

module combo(){
    union(){
    shell();
        cylinder(h=60,r=25,center=true, $fn=circle_resolution);
    }
}

difference(){
    combo();
    translate([-50,-50,-74.5])
    cube([100,100,100]);
}
